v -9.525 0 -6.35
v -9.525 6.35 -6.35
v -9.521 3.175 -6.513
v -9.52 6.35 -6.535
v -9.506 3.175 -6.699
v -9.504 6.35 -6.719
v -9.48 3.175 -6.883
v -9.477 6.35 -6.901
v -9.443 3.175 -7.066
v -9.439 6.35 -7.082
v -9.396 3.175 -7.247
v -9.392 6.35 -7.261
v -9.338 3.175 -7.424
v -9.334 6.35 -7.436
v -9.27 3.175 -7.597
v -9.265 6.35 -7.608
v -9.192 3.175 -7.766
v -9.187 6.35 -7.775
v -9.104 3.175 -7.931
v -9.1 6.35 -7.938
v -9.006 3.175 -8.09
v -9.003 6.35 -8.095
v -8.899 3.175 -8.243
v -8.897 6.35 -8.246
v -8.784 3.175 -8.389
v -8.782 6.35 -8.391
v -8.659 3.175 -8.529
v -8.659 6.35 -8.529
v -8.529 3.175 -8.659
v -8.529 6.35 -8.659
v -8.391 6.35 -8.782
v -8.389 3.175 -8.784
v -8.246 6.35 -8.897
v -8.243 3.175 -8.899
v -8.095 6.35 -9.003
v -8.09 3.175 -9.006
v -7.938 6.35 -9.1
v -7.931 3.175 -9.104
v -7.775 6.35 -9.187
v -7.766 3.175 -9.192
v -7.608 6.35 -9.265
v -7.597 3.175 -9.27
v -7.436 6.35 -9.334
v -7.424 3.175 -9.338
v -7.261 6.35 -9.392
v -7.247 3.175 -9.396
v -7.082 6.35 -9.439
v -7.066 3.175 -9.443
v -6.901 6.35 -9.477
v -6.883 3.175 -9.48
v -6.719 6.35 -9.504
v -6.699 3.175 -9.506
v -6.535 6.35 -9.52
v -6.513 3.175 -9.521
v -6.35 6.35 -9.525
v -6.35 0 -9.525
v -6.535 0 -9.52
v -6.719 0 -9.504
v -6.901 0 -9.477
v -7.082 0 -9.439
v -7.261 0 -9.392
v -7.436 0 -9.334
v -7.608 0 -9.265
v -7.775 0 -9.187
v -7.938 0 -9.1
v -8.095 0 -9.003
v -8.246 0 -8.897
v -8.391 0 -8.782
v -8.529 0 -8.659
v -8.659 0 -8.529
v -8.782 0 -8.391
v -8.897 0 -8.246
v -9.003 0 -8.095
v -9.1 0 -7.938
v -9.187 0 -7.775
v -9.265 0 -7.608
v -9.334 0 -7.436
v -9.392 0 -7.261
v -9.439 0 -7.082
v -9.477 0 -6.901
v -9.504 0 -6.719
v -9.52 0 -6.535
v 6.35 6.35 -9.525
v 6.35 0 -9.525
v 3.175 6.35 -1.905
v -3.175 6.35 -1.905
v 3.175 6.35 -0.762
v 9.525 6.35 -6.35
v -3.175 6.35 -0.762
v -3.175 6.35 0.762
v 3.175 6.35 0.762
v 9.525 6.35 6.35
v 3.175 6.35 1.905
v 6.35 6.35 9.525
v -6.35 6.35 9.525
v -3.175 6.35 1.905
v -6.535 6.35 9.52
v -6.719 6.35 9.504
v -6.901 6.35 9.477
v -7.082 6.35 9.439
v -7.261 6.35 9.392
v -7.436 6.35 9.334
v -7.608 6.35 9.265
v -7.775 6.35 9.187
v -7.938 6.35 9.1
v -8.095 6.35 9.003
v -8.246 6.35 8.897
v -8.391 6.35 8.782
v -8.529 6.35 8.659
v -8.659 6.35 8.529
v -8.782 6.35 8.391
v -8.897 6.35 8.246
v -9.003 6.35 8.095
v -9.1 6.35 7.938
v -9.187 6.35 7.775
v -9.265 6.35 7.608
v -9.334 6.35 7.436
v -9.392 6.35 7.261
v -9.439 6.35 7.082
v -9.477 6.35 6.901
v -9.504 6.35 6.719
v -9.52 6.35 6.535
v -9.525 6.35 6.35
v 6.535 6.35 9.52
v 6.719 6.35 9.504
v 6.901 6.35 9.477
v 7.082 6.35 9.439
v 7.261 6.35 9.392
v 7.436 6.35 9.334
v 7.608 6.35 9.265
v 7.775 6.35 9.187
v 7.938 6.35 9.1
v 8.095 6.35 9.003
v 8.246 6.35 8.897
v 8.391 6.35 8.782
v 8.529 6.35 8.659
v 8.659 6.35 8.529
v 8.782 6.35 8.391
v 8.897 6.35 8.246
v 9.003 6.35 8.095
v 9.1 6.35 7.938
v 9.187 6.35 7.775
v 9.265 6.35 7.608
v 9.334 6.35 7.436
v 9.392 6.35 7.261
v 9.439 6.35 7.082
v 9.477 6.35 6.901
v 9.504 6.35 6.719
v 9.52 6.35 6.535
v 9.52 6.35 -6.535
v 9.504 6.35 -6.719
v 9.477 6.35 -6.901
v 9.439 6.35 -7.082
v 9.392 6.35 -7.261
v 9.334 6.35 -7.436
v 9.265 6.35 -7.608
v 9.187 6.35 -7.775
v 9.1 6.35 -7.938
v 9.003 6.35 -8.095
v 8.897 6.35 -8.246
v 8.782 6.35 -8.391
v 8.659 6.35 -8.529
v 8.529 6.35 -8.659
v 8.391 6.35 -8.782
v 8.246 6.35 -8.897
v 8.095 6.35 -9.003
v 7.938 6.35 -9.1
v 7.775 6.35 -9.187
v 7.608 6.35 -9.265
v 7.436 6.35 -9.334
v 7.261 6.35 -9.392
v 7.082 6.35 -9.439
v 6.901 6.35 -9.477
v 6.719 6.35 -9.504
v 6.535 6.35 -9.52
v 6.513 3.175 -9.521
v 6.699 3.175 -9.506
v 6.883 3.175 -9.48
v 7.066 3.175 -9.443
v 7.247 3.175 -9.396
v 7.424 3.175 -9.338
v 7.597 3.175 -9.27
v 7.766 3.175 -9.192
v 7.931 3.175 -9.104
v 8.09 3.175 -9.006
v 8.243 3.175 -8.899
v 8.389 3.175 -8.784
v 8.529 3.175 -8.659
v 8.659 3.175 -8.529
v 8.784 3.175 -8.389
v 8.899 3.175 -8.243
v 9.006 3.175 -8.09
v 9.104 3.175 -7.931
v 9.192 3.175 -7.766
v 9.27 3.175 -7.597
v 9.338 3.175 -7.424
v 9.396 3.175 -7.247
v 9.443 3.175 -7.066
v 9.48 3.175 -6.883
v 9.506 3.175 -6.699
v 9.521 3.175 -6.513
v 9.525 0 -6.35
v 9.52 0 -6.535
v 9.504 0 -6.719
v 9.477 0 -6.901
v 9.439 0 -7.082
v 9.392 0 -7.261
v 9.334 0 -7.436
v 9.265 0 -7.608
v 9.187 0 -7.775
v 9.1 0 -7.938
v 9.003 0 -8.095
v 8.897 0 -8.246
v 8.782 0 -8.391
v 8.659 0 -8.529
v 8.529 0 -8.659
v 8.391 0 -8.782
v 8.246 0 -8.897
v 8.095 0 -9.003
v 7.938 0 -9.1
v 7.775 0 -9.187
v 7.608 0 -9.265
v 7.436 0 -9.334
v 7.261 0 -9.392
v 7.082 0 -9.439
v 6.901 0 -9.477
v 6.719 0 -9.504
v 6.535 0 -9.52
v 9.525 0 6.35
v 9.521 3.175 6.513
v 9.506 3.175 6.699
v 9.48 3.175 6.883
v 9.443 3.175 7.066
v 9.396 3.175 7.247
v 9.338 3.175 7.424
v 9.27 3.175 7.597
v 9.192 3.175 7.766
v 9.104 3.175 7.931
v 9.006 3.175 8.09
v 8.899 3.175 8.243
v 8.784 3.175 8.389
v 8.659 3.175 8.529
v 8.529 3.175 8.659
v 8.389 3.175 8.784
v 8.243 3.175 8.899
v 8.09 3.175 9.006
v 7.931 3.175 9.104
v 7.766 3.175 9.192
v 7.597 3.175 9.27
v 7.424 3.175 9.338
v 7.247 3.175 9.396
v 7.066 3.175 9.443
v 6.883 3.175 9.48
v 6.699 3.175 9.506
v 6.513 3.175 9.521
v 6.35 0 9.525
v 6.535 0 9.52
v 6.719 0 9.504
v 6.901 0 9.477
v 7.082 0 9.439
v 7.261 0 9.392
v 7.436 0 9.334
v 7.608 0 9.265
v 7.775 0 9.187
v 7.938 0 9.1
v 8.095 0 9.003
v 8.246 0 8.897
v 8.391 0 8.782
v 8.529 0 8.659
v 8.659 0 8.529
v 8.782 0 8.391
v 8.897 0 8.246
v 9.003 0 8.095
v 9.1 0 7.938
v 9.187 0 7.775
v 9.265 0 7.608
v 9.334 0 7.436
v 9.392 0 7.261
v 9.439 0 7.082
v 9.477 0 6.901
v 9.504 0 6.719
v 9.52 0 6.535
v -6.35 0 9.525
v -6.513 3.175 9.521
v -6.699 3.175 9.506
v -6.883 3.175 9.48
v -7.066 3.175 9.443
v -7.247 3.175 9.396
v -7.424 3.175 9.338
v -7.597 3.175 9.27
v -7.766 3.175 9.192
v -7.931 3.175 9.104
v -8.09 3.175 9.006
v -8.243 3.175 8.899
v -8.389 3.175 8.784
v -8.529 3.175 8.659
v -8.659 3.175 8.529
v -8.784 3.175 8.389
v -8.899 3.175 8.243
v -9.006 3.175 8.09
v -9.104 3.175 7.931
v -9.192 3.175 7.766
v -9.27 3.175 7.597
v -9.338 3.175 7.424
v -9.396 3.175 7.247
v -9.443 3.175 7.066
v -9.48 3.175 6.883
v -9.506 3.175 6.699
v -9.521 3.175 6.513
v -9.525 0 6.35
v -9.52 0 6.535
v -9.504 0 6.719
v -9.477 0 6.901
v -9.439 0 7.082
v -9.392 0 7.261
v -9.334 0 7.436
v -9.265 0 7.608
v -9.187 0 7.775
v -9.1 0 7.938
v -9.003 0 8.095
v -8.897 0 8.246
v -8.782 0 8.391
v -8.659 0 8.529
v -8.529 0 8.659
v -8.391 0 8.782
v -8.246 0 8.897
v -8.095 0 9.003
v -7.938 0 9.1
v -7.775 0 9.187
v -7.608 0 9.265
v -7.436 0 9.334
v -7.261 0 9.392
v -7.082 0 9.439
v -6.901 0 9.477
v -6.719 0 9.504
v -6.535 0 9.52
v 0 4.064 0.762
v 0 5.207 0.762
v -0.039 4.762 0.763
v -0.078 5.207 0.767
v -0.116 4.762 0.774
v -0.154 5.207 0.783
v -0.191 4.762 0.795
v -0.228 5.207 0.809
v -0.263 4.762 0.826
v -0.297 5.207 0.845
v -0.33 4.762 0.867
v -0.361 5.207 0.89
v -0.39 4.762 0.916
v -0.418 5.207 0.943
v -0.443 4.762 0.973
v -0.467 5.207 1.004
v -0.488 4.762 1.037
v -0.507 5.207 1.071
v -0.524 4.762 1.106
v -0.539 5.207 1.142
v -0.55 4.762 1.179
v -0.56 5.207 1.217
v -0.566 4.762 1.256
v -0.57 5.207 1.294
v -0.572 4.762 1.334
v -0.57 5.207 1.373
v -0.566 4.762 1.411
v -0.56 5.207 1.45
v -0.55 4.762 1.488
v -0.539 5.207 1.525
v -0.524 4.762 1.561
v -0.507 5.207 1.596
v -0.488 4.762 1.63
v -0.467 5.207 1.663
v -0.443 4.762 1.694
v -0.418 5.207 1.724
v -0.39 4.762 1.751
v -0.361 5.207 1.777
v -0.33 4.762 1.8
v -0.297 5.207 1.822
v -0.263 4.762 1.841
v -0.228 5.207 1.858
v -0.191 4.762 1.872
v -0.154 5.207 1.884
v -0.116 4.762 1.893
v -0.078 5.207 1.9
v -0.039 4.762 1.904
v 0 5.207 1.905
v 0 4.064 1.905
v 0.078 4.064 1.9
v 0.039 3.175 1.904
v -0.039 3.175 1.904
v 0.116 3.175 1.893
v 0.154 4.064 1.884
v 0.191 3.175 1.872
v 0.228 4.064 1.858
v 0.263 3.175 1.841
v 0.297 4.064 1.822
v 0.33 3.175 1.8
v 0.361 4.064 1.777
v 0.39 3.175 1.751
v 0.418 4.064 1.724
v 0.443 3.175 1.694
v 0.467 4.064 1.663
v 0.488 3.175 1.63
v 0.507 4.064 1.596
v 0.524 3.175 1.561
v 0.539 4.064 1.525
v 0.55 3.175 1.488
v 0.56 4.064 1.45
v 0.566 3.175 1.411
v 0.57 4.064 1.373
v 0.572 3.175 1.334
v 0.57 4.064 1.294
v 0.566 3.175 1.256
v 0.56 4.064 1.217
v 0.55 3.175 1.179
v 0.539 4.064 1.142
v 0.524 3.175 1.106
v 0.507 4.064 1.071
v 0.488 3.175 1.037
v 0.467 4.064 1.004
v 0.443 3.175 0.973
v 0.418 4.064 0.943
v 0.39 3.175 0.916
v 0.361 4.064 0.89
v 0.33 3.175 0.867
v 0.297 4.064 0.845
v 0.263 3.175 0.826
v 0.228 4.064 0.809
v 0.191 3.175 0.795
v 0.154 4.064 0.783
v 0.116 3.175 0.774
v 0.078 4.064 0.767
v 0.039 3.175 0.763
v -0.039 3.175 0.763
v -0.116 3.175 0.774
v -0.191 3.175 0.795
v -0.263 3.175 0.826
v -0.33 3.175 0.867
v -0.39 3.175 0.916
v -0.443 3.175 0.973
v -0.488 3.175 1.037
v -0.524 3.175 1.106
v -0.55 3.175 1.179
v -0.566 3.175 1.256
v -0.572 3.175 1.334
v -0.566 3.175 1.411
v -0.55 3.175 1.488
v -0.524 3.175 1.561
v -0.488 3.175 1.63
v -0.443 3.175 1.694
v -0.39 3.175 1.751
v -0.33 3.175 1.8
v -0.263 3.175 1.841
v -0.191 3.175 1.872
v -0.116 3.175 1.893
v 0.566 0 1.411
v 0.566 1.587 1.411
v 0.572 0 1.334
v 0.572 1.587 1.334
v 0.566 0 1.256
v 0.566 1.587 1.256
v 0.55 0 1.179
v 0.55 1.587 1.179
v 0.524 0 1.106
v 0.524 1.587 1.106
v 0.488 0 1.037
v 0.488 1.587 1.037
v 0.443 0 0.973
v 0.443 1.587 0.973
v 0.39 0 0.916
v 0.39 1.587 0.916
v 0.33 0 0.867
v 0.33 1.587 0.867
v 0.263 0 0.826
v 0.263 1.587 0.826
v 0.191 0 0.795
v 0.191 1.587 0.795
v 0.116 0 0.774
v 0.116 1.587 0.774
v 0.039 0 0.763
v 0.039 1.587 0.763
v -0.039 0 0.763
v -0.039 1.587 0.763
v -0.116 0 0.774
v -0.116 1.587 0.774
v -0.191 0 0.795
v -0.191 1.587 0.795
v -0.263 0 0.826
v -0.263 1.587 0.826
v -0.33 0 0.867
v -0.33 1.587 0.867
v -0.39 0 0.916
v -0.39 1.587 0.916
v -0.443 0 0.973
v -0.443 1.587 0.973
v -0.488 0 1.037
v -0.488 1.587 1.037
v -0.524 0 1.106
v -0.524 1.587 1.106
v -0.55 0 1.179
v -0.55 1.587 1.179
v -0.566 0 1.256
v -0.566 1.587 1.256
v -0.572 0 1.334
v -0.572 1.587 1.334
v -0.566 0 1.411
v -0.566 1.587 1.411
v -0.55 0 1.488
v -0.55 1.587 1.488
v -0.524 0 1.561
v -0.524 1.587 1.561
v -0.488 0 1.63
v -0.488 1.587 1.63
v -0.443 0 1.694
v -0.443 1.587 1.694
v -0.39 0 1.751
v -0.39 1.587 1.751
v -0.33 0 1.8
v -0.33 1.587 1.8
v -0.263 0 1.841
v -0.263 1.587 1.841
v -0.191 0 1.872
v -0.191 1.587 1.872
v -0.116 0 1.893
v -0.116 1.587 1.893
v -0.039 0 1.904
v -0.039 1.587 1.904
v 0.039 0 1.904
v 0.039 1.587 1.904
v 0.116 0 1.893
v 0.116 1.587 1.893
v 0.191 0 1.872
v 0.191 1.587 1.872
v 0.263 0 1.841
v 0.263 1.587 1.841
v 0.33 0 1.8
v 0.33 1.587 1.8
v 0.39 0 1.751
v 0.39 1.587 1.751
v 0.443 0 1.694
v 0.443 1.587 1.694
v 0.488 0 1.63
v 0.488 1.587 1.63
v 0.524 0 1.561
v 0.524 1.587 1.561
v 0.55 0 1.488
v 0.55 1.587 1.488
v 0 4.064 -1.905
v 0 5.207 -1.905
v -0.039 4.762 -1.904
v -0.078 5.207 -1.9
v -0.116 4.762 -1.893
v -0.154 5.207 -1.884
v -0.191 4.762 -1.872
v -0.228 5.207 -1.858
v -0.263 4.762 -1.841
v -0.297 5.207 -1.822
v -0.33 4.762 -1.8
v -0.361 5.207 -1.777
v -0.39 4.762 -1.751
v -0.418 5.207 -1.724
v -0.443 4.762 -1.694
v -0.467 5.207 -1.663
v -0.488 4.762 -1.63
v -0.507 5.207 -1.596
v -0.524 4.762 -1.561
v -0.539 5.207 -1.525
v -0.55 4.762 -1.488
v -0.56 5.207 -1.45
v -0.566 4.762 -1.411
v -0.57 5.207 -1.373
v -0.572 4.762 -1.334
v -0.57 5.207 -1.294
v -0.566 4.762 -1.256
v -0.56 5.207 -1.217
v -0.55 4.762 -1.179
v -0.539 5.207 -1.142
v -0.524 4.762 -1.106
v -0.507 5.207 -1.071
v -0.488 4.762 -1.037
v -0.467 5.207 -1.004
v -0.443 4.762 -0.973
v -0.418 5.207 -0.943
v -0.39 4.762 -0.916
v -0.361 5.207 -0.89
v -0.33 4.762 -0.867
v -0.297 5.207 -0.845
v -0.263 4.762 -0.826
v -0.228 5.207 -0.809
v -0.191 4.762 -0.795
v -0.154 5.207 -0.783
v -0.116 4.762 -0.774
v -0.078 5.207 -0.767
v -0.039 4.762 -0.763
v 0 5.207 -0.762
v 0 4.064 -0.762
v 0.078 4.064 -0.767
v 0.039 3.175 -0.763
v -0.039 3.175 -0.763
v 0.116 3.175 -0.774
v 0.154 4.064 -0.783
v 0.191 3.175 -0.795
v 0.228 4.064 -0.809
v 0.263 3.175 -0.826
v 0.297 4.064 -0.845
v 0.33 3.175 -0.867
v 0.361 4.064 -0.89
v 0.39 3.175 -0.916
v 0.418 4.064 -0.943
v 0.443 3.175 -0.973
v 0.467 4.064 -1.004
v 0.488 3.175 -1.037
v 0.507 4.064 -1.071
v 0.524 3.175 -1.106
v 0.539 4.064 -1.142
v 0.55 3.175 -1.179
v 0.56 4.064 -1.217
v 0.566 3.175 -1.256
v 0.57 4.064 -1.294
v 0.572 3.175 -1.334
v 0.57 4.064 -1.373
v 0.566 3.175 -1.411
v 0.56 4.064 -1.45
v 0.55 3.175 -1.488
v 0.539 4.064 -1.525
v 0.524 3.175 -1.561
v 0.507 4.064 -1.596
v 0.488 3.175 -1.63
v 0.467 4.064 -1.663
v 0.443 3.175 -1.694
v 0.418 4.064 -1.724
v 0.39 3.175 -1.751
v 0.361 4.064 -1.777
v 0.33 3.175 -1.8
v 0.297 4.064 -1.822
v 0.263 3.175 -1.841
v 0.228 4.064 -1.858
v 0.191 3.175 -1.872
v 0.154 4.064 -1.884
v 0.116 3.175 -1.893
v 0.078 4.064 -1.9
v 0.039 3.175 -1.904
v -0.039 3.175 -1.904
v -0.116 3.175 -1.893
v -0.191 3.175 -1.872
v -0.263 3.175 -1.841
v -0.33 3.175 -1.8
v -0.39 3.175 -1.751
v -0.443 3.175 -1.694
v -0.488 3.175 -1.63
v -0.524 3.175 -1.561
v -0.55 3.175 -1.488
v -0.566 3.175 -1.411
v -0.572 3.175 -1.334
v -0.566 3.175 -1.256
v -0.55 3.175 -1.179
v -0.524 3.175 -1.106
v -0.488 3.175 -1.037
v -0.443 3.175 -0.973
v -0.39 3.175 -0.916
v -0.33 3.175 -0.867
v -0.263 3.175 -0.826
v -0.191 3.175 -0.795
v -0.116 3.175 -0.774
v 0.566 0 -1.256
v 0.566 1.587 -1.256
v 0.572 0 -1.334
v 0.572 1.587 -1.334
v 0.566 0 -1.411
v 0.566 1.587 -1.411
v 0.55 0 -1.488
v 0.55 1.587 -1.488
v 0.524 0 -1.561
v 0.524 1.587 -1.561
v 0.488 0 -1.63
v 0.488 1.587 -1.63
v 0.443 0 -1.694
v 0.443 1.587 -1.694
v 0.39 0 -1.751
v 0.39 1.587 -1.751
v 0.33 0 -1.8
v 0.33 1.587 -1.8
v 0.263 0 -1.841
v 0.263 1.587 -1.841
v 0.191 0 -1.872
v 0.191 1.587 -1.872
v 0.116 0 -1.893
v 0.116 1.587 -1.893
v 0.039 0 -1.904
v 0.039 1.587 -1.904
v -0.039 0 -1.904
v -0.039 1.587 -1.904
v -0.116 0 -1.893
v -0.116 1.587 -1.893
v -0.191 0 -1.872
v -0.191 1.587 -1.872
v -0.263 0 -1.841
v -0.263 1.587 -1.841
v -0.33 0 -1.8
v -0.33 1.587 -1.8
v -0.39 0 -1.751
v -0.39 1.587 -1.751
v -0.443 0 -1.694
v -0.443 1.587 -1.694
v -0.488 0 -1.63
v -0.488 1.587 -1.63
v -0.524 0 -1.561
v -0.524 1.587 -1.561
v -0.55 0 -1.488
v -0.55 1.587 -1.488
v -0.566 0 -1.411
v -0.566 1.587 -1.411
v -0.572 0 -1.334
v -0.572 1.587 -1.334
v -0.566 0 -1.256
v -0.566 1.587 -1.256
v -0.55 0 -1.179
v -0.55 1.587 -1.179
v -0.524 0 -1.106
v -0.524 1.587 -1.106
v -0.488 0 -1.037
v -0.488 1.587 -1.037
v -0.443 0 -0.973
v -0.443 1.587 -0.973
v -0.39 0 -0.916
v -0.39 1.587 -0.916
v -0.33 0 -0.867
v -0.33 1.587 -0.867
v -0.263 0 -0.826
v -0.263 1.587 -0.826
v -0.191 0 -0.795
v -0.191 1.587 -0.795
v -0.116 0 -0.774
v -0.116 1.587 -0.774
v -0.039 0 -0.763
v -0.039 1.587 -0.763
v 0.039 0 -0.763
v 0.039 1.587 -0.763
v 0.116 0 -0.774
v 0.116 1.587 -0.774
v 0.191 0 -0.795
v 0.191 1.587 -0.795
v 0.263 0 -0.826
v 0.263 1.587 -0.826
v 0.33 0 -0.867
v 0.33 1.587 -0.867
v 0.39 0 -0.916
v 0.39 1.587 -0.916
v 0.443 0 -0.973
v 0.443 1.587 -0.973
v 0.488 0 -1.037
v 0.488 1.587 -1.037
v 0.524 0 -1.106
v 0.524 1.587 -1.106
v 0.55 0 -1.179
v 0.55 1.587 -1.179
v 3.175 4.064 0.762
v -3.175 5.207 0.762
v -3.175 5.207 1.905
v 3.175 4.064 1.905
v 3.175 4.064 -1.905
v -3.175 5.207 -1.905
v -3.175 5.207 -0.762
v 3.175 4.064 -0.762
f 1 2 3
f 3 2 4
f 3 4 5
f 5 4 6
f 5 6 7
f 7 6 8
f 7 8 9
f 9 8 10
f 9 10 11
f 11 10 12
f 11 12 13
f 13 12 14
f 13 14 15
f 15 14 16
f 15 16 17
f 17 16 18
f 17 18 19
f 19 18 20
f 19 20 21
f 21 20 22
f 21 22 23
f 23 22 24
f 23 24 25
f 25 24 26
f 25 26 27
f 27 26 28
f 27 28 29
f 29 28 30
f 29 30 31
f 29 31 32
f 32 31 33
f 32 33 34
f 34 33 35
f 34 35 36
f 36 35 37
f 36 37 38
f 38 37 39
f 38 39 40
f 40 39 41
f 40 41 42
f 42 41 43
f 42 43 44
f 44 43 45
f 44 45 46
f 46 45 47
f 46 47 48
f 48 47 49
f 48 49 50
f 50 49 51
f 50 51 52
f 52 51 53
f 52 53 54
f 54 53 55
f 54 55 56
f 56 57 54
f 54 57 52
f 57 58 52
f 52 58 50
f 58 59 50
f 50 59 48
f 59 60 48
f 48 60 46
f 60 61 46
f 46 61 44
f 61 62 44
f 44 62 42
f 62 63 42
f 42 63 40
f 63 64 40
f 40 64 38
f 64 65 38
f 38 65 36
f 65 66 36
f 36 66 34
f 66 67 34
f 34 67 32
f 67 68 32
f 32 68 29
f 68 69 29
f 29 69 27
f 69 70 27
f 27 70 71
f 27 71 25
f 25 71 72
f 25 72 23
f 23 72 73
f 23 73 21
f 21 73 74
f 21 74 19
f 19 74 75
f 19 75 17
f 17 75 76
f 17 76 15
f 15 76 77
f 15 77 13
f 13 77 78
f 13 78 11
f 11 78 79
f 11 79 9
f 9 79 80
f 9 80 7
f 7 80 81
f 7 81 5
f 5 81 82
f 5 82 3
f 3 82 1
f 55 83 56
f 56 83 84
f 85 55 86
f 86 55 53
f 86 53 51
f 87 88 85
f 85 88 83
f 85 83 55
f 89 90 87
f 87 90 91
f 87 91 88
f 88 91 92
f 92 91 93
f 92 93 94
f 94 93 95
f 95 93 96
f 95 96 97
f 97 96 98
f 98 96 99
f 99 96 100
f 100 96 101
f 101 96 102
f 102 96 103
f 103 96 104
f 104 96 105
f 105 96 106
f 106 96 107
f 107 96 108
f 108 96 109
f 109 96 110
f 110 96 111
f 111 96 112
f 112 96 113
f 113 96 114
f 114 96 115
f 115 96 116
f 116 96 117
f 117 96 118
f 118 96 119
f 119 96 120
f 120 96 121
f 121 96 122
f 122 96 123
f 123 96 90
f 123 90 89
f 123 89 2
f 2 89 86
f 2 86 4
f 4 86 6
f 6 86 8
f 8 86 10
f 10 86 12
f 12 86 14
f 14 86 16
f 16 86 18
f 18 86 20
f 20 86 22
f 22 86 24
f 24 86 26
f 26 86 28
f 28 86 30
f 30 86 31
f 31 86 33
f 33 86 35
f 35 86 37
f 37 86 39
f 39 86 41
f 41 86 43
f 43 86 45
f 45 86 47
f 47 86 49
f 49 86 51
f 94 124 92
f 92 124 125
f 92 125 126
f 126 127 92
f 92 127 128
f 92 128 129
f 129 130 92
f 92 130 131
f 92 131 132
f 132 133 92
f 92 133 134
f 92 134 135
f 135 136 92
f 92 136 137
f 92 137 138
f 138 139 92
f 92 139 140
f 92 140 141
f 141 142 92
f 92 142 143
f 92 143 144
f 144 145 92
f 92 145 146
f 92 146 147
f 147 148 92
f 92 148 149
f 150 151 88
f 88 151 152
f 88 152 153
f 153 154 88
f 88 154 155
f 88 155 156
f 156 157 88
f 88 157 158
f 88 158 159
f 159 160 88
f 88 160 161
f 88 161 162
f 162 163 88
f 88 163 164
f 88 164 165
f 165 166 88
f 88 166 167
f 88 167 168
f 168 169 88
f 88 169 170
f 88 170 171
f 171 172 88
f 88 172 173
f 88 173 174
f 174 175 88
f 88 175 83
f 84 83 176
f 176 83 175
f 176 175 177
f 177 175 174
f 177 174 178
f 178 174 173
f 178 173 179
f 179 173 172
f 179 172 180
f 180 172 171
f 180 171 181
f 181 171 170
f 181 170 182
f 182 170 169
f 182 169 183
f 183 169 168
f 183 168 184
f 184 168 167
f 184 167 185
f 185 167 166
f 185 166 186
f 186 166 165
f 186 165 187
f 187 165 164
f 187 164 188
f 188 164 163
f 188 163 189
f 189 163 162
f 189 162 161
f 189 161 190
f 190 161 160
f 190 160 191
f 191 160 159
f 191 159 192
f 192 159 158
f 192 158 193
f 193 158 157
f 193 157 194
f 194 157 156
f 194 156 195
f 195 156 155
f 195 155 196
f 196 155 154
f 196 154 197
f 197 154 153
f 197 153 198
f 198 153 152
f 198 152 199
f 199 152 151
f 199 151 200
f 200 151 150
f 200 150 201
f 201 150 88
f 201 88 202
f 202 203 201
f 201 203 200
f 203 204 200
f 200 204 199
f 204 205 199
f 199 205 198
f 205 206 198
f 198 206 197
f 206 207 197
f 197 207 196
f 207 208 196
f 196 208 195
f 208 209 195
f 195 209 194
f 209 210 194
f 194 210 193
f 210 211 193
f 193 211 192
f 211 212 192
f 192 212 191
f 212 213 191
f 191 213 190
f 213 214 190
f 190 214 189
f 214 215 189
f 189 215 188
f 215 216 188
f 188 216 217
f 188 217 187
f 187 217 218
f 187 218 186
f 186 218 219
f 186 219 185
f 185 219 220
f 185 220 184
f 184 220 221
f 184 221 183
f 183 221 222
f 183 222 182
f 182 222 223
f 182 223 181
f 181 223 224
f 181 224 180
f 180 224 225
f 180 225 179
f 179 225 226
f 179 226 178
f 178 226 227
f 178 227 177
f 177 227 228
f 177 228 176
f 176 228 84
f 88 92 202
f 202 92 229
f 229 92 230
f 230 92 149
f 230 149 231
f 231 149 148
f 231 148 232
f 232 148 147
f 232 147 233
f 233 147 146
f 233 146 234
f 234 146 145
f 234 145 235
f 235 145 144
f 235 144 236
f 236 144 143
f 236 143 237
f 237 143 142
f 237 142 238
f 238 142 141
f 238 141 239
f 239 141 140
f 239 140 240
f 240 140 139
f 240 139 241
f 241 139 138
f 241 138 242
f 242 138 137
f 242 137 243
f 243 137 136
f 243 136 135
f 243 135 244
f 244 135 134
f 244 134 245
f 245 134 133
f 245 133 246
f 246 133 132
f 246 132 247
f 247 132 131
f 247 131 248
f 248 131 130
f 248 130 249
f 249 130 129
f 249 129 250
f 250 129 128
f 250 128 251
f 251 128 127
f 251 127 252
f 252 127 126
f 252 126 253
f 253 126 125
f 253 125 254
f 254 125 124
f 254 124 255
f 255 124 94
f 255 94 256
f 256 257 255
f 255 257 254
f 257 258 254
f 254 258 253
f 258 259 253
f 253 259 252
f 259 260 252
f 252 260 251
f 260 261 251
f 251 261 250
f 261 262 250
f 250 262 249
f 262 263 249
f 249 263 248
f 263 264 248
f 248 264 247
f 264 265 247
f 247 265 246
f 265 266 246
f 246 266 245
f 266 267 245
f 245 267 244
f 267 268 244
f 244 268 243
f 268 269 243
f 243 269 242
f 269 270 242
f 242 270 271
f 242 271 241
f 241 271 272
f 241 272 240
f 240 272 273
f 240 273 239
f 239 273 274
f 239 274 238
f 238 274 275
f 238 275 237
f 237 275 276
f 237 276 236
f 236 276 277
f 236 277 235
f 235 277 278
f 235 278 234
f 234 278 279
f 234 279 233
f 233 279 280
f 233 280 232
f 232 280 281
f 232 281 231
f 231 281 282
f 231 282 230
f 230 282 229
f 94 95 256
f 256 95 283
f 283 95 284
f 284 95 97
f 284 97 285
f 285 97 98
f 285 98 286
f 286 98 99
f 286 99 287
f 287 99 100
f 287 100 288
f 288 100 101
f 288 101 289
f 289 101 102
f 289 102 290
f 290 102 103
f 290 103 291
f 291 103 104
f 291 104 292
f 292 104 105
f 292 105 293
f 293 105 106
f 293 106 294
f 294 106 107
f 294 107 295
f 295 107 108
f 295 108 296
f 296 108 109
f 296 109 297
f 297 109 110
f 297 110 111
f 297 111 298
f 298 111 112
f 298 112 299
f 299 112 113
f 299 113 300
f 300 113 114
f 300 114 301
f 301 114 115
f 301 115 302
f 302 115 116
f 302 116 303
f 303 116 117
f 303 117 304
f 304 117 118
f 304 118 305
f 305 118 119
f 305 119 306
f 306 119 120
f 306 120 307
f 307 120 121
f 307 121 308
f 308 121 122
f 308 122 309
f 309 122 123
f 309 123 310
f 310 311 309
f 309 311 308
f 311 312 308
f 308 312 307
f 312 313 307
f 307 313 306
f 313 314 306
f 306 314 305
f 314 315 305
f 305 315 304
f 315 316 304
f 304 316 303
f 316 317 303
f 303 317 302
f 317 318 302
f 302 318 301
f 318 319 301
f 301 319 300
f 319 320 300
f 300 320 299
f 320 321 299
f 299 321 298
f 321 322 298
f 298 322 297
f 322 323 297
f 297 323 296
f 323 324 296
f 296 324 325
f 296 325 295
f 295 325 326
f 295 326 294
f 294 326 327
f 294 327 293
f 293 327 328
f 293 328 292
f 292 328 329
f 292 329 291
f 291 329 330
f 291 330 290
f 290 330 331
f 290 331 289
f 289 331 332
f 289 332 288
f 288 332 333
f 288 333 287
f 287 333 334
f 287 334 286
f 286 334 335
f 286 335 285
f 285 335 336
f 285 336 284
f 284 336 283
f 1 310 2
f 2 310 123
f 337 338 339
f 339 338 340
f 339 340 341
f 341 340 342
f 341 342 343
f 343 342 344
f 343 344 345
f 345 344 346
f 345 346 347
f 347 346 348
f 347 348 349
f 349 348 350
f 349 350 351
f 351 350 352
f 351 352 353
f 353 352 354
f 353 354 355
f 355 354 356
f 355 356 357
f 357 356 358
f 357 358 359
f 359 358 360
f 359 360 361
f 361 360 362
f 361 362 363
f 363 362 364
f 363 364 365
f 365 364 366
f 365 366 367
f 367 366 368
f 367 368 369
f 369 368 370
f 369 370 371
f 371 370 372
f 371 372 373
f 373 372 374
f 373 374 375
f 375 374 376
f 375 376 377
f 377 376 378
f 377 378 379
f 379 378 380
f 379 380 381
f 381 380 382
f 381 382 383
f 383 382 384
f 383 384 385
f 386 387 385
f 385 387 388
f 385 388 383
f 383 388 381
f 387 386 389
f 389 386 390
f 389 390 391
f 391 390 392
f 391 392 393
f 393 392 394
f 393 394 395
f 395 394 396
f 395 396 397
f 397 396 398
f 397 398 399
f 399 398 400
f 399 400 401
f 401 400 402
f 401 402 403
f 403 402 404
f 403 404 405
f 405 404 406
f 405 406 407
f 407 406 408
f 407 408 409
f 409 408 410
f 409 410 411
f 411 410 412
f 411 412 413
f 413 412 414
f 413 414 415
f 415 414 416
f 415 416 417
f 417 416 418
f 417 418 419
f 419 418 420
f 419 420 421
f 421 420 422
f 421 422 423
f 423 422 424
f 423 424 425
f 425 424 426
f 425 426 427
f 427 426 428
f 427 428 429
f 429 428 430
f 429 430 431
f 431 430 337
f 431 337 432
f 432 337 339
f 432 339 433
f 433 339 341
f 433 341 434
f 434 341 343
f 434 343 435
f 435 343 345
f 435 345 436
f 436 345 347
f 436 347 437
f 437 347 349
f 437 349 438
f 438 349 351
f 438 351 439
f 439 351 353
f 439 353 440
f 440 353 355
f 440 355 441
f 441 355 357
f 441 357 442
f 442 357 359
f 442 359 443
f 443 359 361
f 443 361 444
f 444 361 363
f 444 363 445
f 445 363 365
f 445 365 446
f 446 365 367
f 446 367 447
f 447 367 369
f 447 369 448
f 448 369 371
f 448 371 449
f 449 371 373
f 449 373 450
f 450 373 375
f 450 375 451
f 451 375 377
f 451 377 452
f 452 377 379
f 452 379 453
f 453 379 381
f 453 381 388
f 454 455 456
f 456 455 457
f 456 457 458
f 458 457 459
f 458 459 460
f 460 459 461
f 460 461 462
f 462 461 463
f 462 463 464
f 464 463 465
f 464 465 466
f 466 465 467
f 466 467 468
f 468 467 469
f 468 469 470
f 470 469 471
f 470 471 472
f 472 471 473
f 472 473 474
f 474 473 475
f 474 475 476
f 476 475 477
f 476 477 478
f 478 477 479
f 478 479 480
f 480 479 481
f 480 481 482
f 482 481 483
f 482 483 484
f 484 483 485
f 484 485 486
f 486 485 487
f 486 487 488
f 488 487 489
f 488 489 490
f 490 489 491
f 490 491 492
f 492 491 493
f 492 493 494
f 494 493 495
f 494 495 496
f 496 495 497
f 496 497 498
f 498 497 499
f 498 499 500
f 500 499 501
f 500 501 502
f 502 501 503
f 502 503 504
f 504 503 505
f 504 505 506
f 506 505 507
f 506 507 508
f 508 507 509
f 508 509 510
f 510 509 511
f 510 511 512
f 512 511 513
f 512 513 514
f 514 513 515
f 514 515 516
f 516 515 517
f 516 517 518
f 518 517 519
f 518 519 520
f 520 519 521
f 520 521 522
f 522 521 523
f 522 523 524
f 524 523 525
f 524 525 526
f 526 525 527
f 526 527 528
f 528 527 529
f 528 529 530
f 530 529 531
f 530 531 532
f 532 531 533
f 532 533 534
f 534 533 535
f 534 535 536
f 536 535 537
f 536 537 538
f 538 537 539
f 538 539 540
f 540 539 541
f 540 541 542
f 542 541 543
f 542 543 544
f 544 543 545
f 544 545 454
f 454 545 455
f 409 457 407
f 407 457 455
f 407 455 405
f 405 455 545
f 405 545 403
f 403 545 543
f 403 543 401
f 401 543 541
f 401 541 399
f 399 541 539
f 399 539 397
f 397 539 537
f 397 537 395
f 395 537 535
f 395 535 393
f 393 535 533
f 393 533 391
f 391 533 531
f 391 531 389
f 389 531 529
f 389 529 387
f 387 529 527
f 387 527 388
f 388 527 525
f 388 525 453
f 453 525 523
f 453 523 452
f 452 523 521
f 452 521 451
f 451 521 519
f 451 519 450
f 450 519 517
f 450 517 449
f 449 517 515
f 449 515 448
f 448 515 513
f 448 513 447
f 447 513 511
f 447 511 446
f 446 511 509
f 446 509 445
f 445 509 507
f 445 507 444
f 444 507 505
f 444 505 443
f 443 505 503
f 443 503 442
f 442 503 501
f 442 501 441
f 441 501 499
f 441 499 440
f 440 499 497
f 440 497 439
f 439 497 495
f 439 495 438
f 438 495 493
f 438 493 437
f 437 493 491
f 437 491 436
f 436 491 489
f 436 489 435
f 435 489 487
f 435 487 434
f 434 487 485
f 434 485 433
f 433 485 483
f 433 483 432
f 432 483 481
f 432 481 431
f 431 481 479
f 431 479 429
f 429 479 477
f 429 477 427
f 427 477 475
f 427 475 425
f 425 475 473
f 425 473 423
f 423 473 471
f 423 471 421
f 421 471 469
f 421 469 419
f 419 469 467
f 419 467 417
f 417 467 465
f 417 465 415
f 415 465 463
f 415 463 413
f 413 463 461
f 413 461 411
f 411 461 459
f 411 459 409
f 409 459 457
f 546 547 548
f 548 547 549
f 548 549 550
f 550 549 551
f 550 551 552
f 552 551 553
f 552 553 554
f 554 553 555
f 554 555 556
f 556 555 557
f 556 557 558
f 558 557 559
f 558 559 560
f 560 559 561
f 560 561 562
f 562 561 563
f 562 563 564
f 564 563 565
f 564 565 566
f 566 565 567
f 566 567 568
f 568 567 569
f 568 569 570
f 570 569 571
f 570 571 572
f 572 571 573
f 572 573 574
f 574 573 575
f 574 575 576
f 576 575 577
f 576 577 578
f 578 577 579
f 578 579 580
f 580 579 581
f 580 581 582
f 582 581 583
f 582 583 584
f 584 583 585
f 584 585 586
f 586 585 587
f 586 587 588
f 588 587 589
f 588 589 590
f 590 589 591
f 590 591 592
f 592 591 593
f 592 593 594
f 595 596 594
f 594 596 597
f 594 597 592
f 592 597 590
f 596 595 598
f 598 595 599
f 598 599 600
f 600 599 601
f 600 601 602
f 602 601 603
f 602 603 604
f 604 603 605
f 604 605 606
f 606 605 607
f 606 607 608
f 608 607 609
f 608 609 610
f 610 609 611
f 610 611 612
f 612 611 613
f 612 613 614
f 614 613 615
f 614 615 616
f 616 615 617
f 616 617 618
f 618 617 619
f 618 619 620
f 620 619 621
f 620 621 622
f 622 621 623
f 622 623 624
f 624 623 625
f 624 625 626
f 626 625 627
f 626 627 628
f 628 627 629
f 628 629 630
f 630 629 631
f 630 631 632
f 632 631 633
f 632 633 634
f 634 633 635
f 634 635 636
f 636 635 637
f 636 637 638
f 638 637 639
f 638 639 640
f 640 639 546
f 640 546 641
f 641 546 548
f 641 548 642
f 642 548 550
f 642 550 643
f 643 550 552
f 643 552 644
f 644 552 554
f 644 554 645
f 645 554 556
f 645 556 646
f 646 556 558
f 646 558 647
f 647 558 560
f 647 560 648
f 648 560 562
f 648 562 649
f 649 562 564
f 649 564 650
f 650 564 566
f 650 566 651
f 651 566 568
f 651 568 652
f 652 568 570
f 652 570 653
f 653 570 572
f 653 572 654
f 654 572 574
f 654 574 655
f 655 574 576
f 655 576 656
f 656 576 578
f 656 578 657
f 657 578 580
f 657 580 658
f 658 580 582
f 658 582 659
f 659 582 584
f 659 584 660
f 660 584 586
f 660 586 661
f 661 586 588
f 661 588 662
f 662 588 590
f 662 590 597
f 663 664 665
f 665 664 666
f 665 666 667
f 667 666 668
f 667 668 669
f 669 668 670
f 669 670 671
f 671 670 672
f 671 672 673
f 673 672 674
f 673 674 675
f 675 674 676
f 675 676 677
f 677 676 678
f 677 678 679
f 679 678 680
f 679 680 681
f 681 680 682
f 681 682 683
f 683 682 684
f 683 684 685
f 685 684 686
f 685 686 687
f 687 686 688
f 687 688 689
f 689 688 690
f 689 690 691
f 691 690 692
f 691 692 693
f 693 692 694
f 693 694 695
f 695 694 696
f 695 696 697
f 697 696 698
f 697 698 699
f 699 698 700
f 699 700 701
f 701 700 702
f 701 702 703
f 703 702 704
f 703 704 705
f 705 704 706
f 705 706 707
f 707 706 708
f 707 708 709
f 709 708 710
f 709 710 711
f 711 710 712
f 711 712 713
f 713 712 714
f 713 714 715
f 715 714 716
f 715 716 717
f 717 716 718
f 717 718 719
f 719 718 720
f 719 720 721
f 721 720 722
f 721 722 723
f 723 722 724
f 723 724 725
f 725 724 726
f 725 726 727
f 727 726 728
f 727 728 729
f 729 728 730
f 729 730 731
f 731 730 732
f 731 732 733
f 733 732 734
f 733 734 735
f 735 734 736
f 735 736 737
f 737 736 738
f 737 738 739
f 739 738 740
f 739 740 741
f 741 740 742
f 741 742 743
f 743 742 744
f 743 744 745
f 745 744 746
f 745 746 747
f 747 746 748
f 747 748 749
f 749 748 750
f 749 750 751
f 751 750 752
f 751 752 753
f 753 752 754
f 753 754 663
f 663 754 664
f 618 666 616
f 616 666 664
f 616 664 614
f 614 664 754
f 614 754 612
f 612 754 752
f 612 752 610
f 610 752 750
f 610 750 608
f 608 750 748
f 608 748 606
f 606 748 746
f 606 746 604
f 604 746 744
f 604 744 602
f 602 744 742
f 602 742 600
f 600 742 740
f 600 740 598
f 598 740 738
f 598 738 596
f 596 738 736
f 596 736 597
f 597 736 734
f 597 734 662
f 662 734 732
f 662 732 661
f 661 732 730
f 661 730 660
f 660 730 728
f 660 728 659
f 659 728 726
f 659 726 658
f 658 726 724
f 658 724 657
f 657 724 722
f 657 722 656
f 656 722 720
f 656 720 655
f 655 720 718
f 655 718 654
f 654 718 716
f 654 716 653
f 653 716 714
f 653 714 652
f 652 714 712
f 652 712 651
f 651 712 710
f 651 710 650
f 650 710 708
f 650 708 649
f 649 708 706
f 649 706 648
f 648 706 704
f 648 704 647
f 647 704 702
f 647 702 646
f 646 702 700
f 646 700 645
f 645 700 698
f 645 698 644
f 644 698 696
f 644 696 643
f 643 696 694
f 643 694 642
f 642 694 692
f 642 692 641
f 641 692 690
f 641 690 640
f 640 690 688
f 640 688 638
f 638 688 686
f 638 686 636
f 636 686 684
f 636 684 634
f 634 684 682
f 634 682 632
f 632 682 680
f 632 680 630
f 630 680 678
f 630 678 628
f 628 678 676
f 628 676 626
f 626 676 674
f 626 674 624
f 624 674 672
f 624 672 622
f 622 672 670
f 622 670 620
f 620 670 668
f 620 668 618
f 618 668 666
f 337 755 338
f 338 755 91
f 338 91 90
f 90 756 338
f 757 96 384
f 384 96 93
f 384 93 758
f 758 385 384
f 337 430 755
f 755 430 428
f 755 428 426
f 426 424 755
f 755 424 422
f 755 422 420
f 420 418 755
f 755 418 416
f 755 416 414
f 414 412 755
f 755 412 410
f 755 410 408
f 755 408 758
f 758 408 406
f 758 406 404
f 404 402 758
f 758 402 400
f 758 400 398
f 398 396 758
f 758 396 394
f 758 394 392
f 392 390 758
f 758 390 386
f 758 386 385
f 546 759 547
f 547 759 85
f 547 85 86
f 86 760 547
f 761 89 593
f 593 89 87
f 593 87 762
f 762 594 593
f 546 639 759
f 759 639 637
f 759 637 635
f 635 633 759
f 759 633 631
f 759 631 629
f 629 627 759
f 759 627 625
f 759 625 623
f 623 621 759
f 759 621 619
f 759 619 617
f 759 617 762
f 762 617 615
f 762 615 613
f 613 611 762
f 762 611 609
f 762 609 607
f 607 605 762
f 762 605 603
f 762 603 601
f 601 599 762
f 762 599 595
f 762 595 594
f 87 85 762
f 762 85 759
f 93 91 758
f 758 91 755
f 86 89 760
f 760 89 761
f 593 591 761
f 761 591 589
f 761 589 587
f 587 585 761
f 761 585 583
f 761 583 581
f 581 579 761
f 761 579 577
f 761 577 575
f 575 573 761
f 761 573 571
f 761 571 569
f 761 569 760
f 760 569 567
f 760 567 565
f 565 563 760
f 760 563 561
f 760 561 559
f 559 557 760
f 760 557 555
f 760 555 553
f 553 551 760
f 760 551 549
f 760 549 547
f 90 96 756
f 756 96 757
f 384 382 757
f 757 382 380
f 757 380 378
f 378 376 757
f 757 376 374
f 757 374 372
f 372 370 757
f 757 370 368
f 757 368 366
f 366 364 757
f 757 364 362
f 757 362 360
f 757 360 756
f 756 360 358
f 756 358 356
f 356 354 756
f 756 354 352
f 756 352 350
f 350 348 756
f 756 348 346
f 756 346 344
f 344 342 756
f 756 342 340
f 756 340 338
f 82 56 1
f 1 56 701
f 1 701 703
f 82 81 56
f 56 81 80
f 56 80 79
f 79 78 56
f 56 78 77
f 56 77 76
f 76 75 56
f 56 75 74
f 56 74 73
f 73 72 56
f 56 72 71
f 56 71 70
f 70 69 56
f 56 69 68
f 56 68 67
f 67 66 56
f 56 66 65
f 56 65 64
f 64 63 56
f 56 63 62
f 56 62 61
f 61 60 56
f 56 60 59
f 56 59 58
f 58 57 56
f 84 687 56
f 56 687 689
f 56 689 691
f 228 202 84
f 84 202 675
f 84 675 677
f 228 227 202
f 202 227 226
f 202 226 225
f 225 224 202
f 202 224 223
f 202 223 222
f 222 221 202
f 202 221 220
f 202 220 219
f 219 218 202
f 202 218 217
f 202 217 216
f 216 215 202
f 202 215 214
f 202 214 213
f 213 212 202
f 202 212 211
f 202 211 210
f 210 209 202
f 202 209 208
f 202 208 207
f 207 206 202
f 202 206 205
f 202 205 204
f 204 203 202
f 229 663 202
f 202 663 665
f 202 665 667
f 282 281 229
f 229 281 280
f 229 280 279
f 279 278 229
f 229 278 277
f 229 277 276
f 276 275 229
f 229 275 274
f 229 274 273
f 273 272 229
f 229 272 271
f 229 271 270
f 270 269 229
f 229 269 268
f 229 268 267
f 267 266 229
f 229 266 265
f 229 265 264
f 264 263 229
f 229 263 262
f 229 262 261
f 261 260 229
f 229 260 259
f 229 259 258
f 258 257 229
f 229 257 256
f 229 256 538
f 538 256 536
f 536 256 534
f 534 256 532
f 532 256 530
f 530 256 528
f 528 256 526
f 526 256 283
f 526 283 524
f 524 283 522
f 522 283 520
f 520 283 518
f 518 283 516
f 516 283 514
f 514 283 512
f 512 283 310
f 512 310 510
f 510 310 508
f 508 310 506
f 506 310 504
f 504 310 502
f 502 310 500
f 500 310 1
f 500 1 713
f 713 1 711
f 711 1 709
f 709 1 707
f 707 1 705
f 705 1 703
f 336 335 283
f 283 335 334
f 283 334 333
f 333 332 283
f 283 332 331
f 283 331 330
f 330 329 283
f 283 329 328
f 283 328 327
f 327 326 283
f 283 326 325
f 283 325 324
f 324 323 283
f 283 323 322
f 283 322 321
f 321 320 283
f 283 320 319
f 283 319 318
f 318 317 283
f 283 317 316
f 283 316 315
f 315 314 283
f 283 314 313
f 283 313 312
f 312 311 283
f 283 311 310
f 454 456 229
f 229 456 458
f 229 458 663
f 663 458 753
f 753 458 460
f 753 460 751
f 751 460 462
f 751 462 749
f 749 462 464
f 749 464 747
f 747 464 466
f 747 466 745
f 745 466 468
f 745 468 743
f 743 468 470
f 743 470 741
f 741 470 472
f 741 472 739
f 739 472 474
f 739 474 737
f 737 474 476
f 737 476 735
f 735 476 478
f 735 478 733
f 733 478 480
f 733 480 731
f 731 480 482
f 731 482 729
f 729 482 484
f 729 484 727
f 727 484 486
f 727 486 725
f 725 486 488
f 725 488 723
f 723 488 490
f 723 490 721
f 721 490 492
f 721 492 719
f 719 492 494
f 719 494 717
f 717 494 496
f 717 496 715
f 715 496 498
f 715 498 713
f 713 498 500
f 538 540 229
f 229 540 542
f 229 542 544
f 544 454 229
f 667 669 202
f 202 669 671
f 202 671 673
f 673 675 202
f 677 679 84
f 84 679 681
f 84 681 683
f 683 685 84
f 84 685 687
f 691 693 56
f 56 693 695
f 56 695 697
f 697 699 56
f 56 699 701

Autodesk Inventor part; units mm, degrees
ref_plane "YZ Plane" through (0, 0, 0) normal (1, 0, 0) x (0, 1, 0)
ref_plane "XZ Plane" through (0, 0, 0) normal (0, 1, 0) x (-1, 0, 0)
ref_plane "XY Plane" through (0, 0, 0) normal (0, 0, 1) x (1, 0, 0)
sketch "Sketch1" plane through (0, 0, 0) normal (0, 1, 0) x (-1, 0, 0)
  line L0 (-9.525, 9.525) -> (9.525, 9.525)
  line L1 (9.525, 9.525) -> (9.525, -9.525)
  line L2 (9.525, -9.525) -> (-9.525, -9.525)
  line L3 (-9.525, -9.525) -> (-9.525, 9.525)
  point P0 (0, 0)
  dimension "d0" = 19.05
  dimension "d1" = 19.05
  dimension "d2" = 9.525
  dimension "d3" = 9.525
extrude "Extrusion1" add sketch "Sketch1" along normal blind 6.35
sketch "Sketch2" plane through (0, 6.35, 0) normal (0, 1, 0) x (1, 0, 0)
  line L0 (-3.175, 1.905) -> (3.175, 1.905)
  line L1 (3.175, 1.905) -> (3.175, 0.762)
  line L2 (3.175, 0.762) -> (-3.175, 0.762)
  line L3 (-3.175, 0.762) -> (-3.175, 1.905)
  line L4 (-3.175, -0.762) -> (3.175, -0.762)
  line L5 (3.175, -0.762) -> (3.175, -1.905)
  line L6 (3.175, -1.905) -> (-3.175, -1.905)
  line L7 (-3.175, -1.905) -> (-3.175, -0.762)
  line L8 (0, 1.905) -> (0, 0.762)
  line L9 (0, -1.905) -> (0, -0.762)
  point P0 (0, 0)
  dimension "d6" = 6.35
  dimension "d7" = 1.143
  dimension "d8" = 3.175
  dimension "d11" = 1.524
  dimension "d12" = 0.762
  dimension "d13" = 6.35
  dimension "d14" = 1.143
extrude "Extrusion2" cut sketch "Sketch2" against normal blind 1.143 contours L0 L8 L2 L3 | L4 L9 L6 L7
extrude "Extrusion3" cut sketch "Sketch2" against normal blind 2.286 contours L0 L1 L2 L8 | L4 L5 L6 L9
sketch "Sketch3" plane through (0, 6.35, 0) normal (0, 1, 0) x (1, 0, 0)
  line L0 (0, -0.762) -> (0, -1.905) projected
  circle A0 centre (0, -1.3335) radius 0.5715
  line L1 (0, 0.762) -> (0, 1.905) projected
  circle A1 centre (0, 1.3335) radius 0.5715
  point P0 (0, 0)
extrude "Extrusion4" cut sketch "Sketch3" against normal through all
fillet "Fillet1" radius 3.175 4 edges at (-9.525, 3.175, 9.525) (9.525, 3.175, 9.525) (9.525, 3.175, -9.525) (-9.525, 3.175, -9.525)
properties part number "Unit_v2"
